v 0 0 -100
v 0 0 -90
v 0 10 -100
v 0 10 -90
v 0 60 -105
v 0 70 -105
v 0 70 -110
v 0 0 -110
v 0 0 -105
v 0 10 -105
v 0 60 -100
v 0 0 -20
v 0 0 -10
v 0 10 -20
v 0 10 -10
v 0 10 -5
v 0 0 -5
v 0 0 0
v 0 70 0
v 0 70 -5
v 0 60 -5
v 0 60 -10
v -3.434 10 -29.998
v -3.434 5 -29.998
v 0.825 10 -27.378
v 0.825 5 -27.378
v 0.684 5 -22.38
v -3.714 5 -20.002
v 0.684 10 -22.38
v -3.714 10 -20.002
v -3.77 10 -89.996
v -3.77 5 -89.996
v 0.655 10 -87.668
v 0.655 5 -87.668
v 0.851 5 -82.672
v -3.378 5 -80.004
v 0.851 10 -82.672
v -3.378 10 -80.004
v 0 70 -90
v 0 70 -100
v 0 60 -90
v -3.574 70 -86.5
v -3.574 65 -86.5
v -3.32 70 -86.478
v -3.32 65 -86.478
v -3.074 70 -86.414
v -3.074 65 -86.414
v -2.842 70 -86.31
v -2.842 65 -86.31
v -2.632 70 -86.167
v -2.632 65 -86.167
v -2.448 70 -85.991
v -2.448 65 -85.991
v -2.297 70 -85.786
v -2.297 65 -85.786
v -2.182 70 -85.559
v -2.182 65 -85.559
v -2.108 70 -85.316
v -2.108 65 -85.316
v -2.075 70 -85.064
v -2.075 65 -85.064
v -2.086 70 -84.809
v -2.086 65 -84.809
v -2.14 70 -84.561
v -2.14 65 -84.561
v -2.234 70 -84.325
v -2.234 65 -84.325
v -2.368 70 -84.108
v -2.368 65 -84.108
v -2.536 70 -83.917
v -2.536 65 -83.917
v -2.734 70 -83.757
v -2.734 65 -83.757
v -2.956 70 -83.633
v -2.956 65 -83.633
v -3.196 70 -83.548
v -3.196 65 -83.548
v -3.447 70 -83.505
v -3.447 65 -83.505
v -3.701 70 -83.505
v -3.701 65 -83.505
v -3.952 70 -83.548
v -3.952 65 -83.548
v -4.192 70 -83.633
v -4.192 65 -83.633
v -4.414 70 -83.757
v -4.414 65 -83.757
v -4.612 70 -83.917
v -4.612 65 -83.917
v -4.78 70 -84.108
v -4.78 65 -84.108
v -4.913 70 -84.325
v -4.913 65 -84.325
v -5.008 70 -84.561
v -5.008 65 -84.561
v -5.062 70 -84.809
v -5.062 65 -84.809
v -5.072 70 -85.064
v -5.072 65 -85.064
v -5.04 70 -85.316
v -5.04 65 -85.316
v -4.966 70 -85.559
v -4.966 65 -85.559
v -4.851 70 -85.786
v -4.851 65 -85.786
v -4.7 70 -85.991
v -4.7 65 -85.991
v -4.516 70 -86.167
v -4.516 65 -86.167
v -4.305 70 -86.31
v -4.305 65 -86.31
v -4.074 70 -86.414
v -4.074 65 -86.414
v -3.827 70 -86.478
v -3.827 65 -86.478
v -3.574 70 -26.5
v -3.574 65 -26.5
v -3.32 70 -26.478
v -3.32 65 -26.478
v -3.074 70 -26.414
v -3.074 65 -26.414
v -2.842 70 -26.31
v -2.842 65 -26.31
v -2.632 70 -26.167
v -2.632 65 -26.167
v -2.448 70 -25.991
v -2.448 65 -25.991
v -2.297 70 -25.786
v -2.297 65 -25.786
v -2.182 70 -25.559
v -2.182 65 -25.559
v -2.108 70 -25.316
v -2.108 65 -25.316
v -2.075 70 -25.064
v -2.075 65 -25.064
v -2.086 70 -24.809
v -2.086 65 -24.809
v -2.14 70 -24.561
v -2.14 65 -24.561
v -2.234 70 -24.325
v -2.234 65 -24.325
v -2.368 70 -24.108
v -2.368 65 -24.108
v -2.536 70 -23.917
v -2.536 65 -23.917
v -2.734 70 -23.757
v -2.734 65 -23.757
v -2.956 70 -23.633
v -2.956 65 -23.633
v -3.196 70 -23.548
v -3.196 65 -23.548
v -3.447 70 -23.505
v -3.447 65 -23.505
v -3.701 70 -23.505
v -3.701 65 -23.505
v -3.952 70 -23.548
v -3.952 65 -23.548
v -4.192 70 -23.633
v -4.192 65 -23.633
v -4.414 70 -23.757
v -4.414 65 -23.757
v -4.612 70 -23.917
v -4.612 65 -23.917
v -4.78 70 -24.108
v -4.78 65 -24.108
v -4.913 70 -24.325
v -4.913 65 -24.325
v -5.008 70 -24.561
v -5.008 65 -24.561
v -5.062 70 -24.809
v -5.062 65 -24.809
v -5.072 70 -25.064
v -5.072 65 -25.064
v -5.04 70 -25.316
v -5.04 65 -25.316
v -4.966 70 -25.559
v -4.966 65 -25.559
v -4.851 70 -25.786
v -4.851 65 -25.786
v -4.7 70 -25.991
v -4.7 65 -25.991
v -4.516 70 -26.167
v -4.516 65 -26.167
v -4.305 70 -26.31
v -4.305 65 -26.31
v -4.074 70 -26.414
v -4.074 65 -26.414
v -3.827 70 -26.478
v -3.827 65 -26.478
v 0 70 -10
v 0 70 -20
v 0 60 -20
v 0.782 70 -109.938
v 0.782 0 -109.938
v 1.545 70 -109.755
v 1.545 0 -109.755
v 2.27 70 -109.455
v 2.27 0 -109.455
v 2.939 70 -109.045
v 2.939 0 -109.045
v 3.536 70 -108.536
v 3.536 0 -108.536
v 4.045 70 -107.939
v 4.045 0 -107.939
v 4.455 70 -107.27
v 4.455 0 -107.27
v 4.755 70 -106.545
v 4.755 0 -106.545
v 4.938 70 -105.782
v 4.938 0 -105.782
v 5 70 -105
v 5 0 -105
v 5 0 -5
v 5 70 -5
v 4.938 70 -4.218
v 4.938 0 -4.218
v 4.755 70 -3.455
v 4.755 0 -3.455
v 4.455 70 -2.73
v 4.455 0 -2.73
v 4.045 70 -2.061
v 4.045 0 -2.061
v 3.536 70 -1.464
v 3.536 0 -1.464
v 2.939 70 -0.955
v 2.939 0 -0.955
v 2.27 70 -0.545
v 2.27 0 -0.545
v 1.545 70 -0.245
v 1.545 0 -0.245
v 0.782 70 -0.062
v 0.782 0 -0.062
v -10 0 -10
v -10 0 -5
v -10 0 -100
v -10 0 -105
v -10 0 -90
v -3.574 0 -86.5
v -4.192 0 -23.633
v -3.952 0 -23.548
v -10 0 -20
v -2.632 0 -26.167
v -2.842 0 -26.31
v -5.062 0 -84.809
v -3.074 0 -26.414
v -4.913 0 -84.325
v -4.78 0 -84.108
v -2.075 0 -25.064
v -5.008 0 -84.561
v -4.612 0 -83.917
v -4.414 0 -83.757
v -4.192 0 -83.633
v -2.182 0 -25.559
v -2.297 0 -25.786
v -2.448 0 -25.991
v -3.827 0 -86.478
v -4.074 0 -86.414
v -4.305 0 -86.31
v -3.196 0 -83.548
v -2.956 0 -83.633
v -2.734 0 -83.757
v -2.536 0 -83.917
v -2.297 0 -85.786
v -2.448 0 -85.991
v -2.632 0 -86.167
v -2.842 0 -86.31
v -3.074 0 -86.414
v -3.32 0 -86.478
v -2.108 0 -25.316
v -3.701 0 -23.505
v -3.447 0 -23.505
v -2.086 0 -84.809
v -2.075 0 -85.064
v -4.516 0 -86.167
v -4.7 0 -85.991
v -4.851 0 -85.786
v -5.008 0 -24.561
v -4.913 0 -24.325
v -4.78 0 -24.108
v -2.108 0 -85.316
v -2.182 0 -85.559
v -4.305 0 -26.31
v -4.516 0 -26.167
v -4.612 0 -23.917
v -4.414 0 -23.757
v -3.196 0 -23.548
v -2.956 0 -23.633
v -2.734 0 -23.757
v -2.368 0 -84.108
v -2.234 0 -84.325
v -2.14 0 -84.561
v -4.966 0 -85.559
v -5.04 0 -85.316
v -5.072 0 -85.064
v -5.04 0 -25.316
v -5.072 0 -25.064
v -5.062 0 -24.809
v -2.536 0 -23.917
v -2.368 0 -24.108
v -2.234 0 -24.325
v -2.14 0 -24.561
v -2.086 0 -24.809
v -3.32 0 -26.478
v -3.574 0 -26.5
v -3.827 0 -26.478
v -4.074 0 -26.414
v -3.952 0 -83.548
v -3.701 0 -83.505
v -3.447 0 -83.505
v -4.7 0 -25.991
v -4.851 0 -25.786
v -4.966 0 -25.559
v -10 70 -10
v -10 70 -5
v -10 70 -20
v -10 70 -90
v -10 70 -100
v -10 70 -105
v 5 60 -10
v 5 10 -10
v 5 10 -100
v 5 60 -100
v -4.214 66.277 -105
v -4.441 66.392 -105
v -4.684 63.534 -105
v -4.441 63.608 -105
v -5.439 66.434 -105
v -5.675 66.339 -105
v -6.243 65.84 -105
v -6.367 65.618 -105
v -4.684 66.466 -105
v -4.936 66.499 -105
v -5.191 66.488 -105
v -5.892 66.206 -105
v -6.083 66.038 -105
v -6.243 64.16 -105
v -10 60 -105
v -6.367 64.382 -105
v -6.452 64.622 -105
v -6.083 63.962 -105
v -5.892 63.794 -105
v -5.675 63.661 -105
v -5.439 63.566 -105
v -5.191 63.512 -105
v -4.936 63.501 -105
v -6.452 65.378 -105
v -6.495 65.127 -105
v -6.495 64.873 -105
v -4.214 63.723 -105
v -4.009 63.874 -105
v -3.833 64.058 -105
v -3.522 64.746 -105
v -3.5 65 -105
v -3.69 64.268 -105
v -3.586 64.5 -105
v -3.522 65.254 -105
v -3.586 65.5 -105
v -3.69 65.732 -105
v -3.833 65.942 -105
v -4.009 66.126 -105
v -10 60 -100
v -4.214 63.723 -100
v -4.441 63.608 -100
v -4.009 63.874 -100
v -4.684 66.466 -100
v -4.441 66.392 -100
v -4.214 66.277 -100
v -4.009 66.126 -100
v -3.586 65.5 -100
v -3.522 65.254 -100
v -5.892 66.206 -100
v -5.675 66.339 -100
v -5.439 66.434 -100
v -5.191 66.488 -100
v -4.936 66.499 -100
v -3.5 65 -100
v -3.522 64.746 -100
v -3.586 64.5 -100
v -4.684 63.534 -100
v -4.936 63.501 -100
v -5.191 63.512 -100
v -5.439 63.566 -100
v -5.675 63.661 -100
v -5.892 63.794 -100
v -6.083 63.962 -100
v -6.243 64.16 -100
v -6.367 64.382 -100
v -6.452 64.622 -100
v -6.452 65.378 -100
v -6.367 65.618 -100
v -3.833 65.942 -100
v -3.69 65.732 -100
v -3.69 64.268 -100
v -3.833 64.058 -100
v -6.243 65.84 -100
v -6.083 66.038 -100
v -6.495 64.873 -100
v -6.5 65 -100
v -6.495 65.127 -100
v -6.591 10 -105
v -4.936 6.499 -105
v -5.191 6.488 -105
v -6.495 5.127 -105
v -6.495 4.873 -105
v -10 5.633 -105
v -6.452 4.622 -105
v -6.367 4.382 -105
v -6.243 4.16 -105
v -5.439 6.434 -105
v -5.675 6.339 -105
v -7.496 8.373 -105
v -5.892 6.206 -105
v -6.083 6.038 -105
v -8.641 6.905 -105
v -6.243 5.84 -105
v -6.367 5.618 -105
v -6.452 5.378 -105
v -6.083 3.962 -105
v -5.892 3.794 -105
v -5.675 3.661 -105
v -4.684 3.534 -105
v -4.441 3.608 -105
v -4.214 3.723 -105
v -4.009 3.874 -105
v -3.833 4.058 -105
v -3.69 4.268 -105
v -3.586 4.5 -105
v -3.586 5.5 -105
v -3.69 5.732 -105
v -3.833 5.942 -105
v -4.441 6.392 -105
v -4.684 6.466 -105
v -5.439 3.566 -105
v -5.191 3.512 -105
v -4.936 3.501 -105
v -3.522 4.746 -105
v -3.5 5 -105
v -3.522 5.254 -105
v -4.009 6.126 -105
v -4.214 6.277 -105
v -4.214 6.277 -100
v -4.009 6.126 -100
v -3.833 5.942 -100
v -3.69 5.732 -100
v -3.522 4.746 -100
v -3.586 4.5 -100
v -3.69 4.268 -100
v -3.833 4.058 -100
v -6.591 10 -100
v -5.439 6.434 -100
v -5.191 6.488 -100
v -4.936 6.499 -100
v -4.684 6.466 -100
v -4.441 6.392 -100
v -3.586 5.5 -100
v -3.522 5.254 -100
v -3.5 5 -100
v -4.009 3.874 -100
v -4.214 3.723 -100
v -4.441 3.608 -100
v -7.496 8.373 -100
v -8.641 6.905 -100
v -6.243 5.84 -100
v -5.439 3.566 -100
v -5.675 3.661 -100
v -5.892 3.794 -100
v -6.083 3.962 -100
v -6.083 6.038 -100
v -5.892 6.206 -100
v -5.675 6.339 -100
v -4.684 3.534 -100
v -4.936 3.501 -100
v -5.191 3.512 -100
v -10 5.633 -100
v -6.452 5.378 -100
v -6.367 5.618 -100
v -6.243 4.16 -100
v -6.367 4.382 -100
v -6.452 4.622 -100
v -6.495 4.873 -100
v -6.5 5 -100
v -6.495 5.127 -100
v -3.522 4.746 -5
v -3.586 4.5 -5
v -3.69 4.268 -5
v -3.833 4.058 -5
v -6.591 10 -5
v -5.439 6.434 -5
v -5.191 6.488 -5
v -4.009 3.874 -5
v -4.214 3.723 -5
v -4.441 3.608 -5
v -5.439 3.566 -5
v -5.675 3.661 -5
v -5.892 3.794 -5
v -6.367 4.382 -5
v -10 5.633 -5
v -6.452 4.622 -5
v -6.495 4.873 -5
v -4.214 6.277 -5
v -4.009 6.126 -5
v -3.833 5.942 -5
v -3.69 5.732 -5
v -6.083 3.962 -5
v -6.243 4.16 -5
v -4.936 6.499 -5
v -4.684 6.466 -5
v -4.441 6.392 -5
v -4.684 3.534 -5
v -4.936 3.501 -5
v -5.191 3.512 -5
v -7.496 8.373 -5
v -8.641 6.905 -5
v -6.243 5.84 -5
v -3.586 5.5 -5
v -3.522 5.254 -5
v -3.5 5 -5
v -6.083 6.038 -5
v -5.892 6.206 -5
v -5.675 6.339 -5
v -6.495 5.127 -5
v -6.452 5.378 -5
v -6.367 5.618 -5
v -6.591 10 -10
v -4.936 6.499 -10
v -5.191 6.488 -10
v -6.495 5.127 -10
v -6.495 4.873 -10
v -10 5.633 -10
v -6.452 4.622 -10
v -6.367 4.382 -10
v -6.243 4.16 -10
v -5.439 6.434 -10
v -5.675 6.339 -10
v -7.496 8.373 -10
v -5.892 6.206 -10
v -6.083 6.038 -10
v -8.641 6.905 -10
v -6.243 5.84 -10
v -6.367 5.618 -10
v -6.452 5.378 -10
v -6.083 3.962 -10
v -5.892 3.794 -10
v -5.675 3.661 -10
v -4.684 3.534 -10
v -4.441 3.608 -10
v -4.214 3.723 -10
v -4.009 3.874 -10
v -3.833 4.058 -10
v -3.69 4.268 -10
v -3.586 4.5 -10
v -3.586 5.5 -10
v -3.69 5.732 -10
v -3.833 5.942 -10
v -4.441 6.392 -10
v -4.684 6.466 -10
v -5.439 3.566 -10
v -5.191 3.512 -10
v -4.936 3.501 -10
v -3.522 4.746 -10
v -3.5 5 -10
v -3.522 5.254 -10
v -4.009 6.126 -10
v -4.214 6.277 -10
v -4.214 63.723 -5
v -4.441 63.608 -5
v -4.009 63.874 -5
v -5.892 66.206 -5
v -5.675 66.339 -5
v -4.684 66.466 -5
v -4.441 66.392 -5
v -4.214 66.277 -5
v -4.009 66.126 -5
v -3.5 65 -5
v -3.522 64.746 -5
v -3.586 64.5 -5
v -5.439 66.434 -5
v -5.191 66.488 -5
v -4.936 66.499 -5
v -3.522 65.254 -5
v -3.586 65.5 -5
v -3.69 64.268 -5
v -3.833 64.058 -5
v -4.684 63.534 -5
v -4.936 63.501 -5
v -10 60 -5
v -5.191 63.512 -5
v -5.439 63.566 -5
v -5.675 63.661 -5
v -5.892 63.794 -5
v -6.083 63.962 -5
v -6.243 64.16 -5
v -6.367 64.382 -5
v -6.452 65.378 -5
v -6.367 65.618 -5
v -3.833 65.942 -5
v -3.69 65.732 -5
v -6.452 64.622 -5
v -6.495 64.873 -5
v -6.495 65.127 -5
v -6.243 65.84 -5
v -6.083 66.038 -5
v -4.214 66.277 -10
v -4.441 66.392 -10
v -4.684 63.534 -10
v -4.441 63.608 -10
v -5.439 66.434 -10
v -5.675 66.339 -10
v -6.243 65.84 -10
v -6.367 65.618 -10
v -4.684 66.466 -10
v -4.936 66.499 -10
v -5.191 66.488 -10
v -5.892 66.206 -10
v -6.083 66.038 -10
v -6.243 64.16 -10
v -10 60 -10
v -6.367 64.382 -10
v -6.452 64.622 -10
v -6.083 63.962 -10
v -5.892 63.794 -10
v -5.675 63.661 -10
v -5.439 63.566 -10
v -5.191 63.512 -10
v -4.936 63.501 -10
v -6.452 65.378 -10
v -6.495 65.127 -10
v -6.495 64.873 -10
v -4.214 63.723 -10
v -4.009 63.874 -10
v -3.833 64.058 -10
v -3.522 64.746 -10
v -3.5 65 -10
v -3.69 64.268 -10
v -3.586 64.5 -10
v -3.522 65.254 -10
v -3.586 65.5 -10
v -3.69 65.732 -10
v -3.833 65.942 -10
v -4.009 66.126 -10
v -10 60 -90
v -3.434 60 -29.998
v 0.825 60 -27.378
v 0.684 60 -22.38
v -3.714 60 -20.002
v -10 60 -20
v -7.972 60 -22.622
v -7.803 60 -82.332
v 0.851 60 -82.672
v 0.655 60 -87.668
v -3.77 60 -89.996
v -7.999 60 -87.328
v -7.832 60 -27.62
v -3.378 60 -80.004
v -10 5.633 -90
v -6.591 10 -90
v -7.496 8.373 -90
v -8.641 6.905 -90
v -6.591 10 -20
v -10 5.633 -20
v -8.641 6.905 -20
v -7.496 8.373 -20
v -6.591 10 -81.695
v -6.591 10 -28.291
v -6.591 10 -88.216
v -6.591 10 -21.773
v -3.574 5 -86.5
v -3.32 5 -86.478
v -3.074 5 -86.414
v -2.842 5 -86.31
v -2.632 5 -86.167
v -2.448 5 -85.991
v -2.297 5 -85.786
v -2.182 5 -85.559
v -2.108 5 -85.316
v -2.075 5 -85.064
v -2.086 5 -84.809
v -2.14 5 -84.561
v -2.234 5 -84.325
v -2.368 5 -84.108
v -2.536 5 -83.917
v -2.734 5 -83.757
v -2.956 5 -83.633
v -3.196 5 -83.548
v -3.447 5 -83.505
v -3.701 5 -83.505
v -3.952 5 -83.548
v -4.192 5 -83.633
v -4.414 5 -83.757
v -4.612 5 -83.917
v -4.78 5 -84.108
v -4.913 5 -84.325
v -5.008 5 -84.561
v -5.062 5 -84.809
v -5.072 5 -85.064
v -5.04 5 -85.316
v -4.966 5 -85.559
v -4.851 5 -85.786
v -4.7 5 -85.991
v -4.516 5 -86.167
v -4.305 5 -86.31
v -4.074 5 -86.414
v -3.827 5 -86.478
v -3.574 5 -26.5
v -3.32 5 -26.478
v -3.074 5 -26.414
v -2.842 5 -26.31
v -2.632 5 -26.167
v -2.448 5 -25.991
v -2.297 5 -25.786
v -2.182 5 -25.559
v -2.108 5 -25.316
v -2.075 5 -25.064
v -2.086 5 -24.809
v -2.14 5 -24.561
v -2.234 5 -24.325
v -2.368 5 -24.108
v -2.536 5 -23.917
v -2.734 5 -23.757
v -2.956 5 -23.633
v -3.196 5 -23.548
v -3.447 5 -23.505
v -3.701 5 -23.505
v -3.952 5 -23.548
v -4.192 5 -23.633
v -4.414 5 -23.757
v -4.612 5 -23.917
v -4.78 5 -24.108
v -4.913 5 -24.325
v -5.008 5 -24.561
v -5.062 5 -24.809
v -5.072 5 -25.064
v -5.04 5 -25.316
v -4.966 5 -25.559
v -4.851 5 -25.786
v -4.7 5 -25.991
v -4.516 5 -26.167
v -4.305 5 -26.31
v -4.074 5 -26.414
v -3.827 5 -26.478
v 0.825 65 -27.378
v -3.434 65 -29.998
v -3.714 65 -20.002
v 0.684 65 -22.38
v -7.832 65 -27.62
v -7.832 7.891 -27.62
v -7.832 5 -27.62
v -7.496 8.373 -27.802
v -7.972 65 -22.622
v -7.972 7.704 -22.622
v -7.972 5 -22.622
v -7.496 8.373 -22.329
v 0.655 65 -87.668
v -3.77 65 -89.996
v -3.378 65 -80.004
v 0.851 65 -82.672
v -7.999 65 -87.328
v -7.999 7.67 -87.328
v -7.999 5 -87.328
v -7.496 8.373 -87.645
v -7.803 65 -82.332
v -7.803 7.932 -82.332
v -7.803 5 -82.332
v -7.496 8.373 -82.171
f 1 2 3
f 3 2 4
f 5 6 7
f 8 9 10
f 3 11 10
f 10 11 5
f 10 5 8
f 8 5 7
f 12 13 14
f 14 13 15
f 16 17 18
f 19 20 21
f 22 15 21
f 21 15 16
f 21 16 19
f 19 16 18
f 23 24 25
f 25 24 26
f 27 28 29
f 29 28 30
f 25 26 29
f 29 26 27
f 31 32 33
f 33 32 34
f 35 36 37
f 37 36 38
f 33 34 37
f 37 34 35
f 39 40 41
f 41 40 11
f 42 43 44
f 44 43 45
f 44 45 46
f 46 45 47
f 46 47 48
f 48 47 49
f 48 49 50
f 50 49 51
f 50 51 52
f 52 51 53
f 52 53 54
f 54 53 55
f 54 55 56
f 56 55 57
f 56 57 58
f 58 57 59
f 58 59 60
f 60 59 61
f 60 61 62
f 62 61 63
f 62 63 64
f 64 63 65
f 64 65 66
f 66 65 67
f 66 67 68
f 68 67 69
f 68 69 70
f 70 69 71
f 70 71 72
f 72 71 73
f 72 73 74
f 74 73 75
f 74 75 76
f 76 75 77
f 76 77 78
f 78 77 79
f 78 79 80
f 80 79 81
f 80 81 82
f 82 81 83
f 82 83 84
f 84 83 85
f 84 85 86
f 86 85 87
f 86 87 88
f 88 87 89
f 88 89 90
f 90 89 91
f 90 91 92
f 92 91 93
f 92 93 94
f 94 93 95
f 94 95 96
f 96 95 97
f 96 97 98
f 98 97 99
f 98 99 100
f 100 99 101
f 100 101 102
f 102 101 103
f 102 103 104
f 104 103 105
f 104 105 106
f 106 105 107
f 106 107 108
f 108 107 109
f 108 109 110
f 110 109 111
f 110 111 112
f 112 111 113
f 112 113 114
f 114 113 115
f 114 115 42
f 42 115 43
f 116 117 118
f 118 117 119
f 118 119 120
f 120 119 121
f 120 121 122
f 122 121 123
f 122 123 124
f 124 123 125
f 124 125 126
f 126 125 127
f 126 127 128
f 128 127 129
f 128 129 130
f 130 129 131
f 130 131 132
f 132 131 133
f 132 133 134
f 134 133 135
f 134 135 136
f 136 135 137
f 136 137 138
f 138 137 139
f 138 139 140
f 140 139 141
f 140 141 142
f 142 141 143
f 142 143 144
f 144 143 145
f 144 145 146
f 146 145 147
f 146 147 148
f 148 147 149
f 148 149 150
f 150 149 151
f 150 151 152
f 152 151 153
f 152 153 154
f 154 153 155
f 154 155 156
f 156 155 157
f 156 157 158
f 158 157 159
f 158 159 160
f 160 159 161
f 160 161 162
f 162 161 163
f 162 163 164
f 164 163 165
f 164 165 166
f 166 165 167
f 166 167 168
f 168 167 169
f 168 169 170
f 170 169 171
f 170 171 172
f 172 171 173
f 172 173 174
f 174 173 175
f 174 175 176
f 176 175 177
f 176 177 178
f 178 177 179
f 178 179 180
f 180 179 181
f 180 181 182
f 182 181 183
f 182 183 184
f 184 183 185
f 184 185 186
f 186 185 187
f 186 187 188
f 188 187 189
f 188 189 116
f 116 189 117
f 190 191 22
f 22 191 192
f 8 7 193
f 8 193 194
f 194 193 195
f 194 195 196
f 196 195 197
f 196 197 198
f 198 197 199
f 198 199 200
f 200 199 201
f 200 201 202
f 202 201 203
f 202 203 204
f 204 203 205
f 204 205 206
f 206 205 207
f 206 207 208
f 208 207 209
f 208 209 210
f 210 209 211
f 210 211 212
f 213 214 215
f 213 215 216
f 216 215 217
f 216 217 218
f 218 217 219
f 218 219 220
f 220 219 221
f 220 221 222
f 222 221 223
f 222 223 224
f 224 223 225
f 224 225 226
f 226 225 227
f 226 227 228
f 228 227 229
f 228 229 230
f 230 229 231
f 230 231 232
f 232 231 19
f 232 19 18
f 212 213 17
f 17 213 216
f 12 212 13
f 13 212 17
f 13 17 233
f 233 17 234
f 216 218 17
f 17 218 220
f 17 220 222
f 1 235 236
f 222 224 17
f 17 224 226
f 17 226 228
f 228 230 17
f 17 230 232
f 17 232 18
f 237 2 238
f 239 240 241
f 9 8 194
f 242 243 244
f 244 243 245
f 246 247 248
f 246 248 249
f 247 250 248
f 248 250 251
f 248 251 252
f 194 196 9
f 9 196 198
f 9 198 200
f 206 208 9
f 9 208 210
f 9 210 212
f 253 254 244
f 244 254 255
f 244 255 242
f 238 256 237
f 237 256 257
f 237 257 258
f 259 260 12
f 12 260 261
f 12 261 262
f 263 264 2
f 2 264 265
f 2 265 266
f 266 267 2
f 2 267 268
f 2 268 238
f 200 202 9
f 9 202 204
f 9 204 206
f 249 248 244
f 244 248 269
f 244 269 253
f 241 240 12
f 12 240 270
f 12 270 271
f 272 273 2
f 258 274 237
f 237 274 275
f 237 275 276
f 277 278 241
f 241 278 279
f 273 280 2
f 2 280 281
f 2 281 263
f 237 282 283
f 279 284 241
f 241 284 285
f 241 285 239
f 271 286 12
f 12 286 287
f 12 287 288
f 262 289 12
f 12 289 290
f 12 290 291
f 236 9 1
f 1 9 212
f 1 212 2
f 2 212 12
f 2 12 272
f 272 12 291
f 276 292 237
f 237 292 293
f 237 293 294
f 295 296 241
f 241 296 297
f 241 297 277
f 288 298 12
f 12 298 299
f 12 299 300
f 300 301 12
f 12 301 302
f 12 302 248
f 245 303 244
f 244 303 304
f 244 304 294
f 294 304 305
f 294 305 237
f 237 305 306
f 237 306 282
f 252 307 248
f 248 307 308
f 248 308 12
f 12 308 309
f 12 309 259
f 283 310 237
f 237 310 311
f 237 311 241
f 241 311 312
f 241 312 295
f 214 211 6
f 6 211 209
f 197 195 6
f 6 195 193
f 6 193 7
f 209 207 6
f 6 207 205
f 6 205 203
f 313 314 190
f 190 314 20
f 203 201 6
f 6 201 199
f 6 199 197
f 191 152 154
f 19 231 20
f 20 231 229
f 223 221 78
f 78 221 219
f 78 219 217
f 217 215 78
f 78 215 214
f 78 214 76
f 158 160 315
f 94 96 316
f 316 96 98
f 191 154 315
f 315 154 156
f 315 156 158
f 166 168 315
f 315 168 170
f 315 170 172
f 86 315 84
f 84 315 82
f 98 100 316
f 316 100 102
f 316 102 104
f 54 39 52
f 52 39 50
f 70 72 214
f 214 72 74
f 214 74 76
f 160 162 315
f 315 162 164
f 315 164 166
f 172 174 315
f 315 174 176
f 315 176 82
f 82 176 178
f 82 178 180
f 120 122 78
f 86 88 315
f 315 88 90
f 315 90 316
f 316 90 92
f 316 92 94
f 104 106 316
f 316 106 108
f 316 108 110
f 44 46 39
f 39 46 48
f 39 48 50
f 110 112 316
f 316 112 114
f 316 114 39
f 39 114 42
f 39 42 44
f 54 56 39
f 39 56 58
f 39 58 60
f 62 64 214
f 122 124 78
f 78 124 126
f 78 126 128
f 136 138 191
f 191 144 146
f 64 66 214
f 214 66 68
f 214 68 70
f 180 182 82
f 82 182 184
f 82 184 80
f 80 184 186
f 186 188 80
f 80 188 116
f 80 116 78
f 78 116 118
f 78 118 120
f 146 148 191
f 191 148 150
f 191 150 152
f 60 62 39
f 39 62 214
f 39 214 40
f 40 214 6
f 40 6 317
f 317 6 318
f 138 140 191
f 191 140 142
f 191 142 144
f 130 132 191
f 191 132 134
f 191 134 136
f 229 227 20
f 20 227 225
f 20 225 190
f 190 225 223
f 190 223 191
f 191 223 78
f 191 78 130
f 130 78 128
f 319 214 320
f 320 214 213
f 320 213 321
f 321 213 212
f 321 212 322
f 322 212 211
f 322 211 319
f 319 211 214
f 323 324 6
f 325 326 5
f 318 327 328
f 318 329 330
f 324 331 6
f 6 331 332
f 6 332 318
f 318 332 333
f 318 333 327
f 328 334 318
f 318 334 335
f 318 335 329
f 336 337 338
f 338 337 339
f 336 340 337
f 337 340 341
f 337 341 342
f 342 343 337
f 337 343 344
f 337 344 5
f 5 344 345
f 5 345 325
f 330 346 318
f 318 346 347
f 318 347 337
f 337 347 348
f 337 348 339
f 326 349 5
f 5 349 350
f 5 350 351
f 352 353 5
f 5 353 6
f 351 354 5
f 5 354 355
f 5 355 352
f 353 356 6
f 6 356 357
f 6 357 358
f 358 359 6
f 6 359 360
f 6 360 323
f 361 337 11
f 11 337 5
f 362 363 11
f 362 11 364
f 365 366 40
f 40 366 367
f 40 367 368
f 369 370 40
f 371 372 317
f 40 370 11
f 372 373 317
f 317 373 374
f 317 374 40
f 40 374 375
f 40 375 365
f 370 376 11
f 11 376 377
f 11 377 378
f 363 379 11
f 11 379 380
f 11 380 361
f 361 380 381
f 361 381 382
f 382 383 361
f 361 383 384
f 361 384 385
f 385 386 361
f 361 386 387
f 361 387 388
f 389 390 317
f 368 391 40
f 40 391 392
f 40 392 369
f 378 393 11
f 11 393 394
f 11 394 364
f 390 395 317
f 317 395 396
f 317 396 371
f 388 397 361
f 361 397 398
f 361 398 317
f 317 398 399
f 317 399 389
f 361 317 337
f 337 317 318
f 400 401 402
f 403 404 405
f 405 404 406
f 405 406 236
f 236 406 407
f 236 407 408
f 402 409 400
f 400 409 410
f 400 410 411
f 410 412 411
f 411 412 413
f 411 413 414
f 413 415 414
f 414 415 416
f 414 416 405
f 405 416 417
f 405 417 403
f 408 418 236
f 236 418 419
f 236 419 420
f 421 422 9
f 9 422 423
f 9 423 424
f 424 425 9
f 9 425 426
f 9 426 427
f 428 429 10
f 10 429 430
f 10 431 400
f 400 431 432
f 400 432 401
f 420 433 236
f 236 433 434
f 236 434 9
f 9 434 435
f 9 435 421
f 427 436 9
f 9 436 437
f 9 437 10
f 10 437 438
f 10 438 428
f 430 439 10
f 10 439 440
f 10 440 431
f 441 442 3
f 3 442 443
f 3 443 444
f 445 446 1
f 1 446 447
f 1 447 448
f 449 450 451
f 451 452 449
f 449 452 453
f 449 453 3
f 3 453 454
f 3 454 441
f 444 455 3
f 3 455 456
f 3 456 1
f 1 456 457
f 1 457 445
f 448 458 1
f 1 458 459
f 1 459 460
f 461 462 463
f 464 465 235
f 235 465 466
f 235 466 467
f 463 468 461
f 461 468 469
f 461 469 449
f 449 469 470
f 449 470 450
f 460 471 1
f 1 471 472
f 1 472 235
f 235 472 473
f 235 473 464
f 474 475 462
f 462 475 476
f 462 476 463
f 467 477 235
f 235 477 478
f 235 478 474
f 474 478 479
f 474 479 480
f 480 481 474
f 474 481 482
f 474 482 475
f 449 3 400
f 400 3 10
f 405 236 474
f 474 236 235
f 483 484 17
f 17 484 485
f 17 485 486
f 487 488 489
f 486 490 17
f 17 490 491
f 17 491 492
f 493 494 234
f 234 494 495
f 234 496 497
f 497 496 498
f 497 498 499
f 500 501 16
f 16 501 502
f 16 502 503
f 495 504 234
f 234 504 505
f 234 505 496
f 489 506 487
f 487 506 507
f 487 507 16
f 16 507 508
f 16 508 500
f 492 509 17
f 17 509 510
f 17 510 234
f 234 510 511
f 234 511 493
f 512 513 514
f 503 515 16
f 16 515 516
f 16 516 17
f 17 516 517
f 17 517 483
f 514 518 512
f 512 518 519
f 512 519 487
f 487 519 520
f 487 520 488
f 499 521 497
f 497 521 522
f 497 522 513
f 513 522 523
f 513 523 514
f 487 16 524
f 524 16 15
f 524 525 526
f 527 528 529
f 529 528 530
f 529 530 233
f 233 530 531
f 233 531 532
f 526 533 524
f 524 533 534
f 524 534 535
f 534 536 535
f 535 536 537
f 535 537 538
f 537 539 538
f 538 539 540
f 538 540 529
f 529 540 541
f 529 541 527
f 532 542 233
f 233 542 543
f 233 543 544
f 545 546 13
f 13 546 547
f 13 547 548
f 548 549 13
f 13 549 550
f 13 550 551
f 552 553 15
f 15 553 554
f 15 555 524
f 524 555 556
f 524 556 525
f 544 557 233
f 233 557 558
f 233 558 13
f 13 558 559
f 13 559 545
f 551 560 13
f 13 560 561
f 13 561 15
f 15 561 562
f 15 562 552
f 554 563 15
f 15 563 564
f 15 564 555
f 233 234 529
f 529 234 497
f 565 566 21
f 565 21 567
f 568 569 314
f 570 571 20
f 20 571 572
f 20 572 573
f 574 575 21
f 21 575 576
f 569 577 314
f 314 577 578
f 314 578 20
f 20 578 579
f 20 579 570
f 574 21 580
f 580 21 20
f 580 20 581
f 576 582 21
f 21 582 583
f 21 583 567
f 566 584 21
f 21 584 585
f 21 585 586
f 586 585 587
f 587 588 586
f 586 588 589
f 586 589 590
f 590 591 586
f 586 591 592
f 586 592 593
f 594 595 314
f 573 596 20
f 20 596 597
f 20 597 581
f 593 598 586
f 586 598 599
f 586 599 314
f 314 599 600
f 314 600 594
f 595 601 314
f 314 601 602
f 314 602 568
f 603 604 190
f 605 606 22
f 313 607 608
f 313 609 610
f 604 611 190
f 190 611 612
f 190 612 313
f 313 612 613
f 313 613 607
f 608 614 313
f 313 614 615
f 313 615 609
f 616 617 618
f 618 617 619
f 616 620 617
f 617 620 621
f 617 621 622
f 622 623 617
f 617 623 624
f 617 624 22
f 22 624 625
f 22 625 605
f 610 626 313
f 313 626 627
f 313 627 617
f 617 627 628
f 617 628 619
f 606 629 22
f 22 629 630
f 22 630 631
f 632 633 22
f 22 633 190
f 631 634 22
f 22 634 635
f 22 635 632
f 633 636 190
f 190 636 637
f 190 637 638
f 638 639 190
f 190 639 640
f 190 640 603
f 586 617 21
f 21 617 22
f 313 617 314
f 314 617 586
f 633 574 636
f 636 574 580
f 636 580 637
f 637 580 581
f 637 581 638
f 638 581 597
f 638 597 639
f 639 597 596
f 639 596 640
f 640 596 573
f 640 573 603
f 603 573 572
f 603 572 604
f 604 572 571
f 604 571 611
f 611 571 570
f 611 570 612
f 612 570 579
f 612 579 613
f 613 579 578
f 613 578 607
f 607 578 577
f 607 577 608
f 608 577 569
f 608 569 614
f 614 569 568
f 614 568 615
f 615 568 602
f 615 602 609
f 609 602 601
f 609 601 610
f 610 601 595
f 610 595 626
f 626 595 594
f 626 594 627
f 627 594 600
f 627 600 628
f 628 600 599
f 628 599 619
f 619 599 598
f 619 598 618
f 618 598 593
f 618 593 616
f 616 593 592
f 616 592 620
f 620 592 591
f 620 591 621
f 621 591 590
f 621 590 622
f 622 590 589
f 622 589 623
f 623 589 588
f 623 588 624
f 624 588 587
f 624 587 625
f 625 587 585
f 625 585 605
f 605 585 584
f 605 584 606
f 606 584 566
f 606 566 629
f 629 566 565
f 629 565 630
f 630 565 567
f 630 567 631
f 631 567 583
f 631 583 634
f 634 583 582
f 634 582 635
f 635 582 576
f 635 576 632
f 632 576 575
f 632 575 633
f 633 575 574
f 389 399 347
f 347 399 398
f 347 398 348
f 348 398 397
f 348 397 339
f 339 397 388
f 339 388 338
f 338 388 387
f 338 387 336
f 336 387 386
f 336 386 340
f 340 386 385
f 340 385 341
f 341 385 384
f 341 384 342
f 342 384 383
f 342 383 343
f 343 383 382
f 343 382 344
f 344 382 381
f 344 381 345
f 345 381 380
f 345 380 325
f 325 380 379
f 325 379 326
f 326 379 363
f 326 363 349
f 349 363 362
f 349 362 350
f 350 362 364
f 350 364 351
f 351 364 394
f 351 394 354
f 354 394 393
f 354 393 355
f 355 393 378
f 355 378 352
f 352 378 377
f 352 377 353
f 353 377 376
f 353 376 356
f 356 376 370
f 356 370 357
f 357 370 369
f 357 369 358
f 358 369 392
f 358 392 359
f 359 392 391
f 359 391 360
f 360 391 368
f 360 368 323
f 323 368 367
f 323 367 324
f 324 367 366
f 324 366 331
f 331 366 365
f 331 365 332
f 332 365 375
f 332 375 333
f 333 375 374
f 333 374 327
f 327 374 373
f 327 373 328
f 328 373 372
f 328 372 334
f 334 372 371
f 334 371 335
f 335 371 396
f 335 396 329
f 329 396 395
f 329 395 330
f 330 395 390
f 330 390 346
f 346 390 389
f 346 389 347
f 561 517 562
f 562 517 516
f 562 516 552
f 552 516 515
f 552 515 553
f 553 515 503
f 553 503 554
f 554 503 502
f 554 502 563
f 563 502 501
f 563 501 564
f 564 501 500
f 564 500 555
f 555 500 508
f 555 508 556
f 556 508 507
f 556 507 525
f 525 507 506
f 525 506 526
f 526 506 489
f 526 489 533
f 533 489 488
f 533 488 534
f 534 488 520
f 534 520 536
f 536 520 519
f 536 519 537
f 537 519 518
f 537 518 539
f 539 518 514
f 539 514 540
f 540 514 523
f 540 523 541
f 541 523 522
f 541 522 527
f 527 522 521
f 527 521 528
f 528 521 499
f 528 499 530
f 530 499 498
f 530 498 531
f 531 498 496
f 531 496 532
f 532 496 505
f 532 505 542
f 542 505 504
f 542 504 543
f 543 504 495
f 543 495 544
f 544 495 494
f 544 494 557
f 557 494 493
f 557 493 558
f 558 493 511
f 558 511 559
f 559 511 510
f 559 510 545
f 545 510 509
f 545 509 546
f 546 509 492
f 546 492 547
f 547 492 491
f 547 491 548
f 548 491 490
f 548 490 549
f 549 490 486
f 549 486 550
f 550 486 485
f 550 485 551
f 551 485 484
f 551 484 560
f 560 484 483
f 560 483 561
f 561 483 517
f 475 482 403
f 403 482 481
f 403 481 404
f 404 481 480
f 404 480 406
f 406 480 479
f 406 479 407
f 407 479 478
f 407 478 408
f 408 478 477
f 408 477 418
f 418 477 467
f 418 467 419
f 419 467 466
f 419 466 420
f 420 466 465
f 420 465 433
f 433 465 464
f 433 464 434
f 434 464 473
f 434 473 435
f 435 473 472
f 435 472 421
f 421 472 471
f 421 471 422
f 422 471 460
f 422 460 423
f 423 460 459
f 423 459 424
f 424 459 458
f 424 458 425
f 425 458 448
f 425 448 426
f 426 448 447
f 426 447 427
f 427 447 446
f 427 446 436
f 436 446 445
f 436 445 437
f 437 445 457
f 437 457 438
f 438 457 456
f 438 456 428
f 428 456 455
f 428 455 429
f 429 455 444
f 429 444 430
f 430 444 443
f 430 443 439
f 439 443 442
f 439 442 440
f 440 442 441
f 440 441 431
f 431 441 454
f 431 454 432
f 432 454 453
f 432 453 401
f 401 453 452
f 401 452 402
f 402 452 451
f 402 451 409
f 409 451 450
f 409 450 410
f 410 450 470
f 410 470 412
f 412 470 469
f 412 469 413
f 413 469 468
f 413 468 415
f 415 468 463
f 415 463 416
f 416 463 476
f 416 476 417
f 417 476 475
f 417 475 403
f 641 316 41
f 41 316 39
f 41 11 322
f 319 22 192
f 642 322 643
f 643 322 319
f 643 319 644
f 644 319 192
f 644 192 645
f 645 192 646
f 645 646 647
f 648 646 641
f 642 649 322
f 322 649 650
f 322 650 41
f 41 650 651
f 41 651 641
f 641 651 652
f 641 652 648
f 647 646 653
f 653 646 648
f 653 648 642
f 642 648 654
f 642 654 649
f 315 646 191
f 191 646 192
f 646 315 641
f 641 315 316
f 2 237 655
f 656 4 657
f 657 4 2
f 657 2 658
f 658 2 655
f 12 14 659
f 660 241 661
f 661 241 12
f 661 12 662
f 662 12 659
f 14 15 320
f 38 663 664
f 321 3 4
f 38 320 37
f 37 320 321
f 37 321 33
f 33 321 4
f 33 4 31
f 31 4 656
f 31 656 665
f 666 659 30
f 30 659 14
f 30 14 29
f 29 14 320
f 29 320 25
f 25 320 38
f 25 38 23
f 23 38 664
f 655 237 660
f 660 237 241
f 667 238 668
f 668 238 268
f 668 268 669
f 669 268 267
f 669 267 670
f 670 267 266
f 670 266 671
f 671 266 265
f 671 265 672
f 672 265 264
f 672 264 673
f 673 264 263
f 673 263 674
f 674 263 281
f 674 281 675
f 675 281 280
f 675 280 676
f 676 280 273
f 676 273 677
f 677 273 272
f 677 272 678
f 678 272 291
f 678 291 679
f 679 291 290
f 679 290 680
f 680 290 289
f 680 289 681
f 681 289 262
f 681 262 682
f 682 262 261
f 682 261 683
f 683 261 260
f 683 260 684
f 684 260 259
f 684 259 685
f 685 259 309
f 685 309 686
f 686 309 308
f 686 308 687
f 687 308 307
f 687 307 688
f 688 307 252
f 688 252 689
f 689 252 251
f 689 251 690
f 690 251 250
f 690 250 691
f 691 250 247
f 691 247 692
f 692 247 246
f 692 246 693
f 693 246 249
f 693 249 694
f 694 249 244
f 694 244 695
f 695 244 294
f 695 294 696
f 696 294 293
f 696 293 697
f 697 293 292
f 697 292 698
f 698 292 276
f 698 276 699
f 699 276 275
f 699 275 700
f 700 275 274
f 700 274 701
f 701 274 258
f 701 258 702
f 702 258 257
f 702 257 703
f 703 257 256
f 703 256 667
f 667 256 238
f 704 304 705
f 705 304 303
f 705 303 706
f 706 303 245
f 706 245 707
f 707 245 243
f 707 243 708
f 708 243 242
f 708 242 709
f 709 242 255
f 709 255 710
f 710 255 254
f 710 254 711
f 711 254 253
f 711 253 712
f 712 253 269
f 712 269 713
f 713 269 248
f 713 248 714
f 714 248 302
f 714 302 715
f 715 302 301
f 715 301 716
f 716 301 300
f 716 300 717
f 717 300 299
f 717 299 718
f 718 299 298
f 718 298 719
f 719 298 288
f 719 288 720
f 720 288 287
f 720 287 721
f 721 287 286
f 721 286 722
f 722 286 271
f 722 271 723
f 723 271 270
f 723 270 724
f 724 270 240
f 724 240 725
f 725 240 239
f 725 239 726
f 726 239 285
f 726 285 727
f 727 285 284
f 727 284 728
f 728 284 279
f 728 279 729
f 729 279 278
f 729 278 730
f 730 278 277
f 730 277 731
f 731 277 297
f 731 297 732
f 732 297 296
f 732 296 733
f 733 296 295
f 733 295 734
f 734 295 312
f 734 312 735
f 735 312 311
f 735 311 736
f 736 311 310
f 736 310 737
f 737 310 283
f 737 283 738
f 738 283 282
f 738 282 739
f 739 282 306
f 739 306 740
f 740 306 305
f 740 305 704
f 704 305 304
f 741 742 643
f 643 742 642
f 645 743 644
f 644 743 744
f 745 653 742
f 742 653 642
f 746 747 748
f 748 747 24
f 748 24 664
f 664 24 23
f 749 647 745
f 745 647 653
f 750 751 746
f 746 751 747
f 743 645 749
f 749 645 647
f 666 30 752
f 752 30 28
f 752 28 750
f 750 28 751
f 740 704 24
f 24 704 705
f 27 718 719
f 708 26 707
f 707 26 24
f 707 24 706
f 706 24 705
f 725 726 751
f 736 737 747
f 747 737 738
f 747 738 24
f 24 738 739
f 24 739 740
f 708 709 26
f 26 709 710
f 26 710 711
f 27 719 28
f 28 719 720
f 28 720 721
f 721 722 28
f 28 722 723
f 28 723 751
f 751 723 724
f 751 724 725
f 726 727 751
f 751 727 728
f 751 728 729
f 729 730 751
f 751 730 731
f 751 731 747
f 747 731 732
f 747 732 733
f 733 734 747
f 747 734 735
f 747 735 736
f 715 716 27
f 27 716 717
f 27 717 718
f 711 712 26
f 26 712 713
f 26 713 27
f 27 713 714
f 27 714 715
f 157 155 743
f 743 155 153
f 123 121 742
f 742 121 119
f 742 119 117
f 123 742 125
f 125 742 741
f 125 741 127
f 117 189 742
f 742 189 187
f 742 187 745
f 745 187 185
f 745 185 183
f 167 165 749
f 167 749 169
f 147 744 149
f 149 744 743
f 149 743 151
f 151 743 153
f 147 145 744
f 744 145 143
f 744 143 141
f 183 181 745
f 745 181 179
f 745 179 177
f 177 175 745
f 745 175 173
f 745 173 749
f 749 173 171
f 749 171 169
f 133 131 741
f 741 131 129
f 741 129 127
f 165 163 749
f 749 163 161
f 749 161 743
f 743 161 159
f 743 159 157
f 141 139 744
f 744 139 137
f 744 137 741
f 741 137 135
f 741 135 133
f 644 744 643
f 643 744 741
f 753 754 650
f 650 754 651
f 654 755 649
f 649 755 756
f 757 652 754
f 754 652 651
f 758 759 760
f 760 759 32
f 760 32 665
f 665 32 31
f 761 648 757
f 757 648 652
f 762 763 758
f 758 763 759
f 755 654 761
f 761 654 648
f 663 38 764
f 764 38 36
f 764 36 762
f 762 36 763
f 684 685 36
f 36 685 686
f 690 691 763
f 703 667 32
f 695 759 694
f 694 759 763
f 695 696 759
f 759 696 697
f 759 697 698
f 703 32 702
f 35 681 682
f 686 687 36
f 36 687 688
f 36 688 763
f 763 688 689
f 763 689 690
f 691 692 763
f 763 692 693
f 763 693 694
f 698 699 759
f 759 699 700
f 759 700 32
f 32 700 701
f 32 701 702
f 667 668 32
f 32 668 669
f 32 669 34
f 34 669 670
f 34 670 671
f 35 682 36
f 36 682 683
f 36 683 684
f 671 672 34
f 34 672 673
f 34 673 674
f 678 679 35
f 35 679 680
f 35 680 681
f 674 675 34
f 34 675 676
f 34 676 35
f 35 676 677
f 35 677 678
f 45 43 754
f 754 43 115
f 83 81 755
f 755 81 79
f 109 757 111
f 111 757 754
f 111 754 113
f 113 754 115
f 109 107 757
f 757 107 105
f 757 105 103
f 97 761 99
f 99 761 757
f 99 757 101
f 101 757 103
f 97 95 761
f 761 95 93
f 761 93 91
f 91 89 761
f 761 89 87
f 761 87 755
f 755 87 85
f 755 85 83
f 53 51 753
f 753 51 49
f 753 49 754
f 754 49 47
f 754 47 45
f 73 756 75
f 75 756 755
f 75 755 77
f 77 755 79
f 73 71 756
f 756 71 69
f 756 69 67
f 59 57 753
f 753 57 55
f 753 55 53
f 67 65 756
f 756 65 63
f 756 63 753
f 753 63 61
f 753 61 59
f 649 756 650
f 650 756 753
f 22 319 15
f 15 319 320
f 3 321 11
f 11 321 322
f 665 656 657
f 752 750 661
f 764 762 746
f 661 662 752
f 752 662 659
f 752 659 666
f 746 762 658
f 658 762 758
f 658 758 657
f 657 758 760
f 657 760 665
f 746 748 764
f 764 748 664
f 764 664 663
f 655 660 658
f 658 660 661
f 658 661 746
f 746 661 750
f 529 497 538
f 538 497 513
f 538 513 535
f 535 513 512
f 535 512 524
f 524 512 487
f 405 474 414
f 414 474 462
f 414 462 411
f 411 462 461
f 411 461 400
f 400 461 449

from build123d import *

# Parameters (mm, degrees)
SKETCH1_W               = 110
SKETCH1_H               = 70
BOSS_EXTRUDE1_DEPTH     = 5
FILLET2_R               = 5
FILLET3_R               = 5
SKETCH2_W               = 5
SKETCH2_H               = 10
BOSS_EXTRUDE2_DEPTH     = 10
SKETCH3_R               = 1.5
CUT_EXTRUDE1_DEPTH      = 122
SKETCH4_W               = 70
SKETCH4_H               = 10
BOSS_EXTRUDE3_DEPTH     = 10
SKETCH5_R               = 11.5
CUT_EXTRUDE2_DEPTH      = 105
SKETCH6_R               = 1.5
CUT_EXTRUDE3_DEPTH      = 105
CUT_EXTRUDE4_DEPTH      = 55
CUT_EXTRUDE4_DEPTH_BACK = 5
SKETCH9_W               = 90
SKETCH9_H               = 50
CUT_EXTRUDE5_DEPTH      = 55
SKETCH10_R              = 12
CUT_EXTRUDE6_DEPTH      = 109


with BuildPart() as part:
    # Sketch1 → Boss-Extrude1 (new body)
    with BuildSketch(Plane(origin=(0, 0, 0), x_dir=(0, 0, -1), z_dir=(1, 0, 0))):
        with Locations((55, 35)):
            Rectangle(SKETCH1_W, SKETCH1_H)
    extrude(amount=BOSS_EXTRUDE1_DEPTH)

    # Fillet2
    fillet2_edges = [part.edges().sort_by_distance(p)[0] for p in [
        (5, 35, 0),
    ]]
    fillet(fillet2_edges, radius=FILLET2_R - 0.0001)  # a hair under: the kernel refuses the full size

    # Fillet3
    fillet3_edges = [part.edges().sort_by_distance(p)[0] for p in [
        (5, 35, -110),
    ]]
    fillet(fillet3_edges, radius=FILLET3_R - 0.0001)  # a hair under: the kernel refuses the full size

    # Sketch2 → Boss-Extrude2 (add)
    with BuildSketch(Plane.ZY):
        with Locations((-102.5, 65)):
            Rectangle(SKETCH2_W, SKETCH2_H)
        with Locations((-102.5, 5)):
            Rectangle(SKETCH2_W, SKETCH2_H)
        with Locations((-7.5, 5)):
            Rectangle(SKETCH2_W, SKETCH2_H)
        with Locations((-7.5, 65)):
            Rectangle(SKETCH2_W, SKETCH2_H)
    extrude(amount=BOSS_EXTRUDE2_DEPTH)

    # Sketch3 → Cut-Extrude1 (cut)
    with BuildSketch(Plane.XY.offset(-5)):
        with Locations((-5, 65)):
            Circle(SKETCH3_R)
        with Locations((-5, 5)):
            Circle(SKETCH3_R)
    extrude(amount=-CUT_EXTRUDE1_DEPTH, mode=Mode.SUBTRACT)

    # Sketch4 → Boss-Extrude3 (add)
    with BuildSketch(Plane.ZY):
        with Locations((-55, 65)):
            Rectangle(SKETCH4_W, SKETCH4_H)
        with Locations((-55, 5)):
            Rectangle(SKETCH4_W, SKETCH4_H)
    extrude(amount=BOSS_EXTRUDE3_DEPTH)

    # Sketch5 → Cut-Extrude2 (cut)
    with BuildSketch(Plane.XY.offset(-5)):
        with Locations((-17.5, 15)):
            Circle(SKETCH5_R)
    extrude(amount=-CUT_EXTRUDE2_DEPTH, mode=Mode.SUBTRACT)

    # Sketch6 → Cut-Extrude3 (cut)
    with BuildSketch(Plane.XZ):
        with Locations(Location((-3.573842411, -25, 0), (0, 0, 270))):
            Circle(SKETCH6_R)
        with Locations(Location((-3.573842411, -85, 0), (0, 0, 270))):
            Circle(SKETCH6_R)
    extrude(amount=-CUT_EXTRUDE3_DEPTH, mode=Mode.SUBTRACT)

    # Sketch7 → Cut-Extrude4 (cut, two sides: drawn at the far end of the back side and taken through both)
    with BuildSketch(Plane.XZ.offset(-60).offset(-CUT_EXTRUDE4_DEPTH_BACK)):
        Polygon((0.824714328, -27.377540454), (0.68444639, -22.37950835), (-3.71411035, -20.001967897), (-7.972399151, -22.622459546), (-7.832131212, -27.62049165), (-3.433574473, -29.998032103), align=None)
        Polygon((0.654912484, -87.66788906), (0.850994737, -82.671735365), (-3.377760158, -80.003846304), (-7.802597306, -82.33211094), (-7.99867956, -87.328264635), (-3.769924665, -89.996153696), align=None)
    extrude(amount=CUT_EXTRUDE4_DEPTH + CUT_EXTRUDE4_DEPTH_BACK, mode=Mode.SUBTRACT)

    # Sketch9 → Cut-Extrude5 (cut)
    with BuildSketch(Plane.ZY):
        with Locations((-55, 35)):
            Rectangle(SKETCH9_W, SKETCH9_H)
    extrude(amount=-CUT_EXTRUDE5_DEPTH, mode=Mode.SUBTRACT)

    # Sketch10 → Cut-Extrude6 (cut)
    with BuildSketch(Plane.XY.offset(-5)):
        with Locations((-17.5, 15)):
            Circle(SKETCH10_R)
    extrude(amount=-CUT_EXTRUDE6_DEPTH, mode=Mode.SUBTRACT)


solid = part.part
